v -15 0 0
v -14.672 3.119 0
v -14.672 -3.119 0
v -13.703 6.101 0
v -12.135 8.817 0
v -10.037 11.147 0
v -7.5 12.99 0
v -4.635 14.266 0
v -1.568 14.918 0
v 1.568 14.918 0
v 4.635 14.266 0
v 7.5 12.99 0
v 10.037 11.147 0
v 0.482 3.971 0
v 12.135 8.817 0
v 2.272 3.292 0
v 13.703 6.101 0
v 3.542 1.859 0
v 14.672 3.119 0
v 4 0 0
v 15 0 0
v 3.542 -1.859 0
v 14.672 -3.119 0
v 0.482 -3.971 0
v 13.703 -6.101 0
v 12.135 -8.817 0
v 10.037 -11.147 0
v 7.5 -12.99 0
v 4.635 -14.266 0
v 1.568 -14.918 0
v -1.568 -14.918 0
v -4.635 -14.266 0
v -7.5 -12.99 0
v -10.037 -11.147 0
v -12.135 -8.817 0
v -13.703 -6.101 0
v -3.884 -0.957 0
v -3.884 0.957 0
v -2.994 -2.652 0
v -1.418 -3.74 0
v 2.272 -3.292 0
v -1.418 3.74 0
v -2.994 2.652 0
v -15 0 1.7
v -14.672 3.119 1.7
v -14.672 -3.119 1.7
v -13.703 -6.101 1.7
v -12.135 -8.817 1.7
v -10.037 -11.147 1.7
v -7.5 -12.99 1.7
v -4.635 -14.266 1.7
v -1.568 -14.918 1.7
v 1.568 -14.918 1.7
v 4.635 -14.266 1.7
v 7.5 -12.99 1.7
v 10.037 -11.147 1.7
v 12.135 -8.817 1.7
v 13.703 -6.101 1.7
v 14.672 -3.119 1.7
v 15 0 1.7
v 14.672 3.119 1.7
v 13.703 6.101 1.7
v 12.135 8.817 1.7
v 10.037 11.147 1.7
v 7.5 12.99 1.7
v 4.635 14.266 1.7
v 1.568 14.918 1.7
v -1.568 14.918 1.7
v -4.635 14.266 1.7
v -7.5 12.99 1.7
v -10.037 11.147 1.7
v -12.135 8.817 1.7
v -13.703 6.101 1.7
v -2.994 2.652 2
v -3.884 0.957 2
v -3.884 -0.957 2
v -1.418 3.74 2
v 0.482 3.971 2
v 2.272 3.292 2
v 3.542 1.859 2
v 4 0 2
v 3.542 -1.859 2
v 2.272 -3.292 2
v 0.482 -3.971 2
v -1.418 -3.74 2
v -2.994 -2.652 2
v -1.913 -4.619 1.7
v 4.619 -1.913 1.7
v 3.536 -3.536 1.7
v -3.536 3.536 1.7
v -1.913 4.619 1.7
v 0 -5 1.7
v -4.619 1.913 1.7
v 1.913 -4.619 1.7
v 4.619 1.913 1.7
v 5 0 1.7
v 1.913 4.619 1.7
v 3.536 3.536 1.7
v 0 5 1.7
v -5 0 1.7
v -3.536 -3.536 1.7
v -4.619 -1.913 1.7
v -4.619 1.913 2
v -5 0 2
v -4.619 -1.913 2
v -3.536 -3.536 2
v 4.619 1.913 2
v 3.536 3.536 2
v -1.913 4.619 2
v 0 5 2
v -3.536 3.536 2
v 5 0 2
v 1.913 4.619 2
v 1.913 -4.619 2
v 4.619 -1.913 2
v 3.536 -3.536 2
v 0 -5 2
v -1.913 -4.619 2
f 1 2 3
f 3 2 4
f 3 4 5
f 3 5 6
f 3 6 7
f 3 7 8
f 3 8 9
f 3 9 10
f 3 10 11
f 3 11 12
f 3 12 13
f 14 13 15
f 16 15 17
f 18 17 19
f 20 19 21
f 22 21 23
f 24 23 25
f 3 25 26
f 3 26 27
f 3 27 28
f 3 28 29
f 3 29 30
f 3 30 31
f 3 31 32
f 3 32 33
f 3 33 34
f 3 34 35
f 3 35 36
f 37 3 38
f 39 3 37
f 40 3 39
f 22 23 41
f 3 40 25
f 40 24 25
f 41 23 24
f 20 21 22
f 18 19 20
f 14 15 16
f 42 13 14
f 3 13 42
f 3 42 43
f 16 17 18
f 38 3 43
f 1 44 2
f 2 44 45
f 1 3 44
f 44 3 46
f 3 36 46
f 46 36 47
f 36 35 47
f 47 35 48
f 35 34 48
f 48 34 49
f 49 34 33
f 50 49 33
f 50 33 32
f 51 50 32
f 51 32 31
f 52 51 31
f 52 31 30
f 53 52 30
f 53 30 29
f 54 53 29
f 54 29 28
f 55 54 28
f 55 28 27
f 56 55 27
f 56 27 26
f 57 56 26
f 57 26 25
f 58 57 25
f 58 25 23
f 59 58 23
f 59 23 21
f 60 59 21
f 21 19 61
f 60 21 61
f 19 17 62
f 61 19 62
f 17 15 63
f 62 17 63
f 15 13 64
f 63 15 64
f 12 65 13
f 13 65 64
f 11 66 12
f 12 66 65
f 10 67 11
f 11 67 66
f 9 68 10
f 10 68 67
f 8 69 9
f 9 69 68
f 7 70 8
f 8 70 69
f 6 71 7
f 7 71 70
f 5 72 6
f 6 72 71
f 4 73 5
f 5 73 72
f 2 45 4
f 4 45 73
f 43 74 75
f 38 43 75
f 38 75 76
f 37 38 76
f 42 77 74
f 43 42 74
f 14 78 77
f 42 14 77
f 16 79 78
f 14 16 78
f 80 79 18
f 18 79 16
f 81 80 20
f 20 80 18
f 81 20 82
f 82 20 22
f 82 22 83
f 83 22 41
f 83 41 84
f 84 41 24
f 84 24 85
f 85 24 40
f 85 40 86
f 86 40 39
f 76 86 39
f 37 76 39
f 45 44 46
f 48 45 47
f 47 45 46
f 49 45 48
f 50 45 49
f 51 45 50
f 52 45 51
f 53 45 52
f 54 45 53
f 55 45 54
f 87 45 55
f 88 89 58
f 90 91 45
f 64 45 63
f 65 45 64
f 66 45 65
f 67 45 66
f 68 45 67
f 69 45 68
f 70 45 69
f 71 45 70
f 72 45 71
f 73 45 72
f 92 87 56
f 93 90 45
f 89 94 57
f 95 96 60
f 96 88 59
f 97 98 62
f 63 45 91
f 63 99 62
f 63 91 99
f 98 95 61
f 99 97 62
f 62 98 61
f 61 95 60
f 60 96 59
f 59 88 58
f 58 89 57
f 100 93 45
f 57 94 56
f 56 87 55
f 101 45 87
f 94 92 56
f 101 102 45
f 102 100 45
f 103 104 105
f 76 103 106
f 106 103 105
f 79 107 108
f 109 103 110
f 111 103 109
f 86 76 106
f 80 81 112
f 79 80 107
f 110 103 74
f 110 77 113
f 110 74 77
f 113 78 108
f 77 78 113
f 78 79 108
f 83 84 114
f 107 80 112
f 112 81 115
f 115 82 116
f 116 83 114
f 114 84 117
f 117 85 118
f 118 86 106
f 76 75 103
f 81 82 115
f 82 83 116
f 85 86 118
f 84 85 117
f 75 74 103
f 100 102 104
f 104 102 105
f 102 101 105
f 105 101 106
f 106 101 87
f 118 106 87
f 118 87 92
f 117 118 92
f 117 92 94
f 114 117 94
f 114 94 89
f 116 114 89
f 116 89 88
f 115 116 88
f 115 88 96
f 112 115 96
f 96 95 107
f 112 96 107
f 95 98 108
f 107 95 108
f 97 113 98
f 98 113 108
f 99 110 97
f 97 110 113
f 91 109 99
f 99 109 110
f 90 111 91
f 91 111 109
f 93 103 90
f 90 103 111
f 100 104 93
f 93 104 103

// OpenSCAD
// This one is AWESOME design by Greg Frost!!

// PRUSA Mendel  
// Bearing guide
// GNU GPL v3
// Josef Průša
// josefprusa@me.com
// prusadjs.cz
// http://www.reprap.org/wiki/Prusa_Mendel
// http://github.com/prusajr/PrusaMendel


/**
 * Helps to hold belt aligned on the bearing.
 * @id bearing-guide
 * @name Bearing guide
 * @category Printed
 */

single_layer_width=0.6;
bearing_inner=22.3;
thickness=1.7;
height=7+thickness;
wall_ascent=3;
wall_descent=0.5;

module inner()
{
	difference()
	{
		cylinder(r=5,h=2);
		color("red")translate([0,0,-1])
		cylinder(r=4,h=height+2);
	}

	difference()
	{
		color("red")cylinder(r=15,h=thickness);
		translate([0,0,-1])
		cylinder(r=5,h=thickness+2);
	}
}

module outer()
{
	difference()
	{
		cylinder(r=bearing_inner/2+2*single_layer_width+0.3,h=height);
		translate([0,0,-1])
		cylinder(r=bearing_inner/2+single_layer_width+0.3,h=height+2);
	}

	difference()
	{
		cylinder(r=bearing_inner/2+wall_ascent,h=thickness);
		translate([0,0,-1])
		cylinder(r=bearing_inner/2-wall_descent,h=thickness+2);
	}
}

inner();

//translate([29,0,0])
//outer();
